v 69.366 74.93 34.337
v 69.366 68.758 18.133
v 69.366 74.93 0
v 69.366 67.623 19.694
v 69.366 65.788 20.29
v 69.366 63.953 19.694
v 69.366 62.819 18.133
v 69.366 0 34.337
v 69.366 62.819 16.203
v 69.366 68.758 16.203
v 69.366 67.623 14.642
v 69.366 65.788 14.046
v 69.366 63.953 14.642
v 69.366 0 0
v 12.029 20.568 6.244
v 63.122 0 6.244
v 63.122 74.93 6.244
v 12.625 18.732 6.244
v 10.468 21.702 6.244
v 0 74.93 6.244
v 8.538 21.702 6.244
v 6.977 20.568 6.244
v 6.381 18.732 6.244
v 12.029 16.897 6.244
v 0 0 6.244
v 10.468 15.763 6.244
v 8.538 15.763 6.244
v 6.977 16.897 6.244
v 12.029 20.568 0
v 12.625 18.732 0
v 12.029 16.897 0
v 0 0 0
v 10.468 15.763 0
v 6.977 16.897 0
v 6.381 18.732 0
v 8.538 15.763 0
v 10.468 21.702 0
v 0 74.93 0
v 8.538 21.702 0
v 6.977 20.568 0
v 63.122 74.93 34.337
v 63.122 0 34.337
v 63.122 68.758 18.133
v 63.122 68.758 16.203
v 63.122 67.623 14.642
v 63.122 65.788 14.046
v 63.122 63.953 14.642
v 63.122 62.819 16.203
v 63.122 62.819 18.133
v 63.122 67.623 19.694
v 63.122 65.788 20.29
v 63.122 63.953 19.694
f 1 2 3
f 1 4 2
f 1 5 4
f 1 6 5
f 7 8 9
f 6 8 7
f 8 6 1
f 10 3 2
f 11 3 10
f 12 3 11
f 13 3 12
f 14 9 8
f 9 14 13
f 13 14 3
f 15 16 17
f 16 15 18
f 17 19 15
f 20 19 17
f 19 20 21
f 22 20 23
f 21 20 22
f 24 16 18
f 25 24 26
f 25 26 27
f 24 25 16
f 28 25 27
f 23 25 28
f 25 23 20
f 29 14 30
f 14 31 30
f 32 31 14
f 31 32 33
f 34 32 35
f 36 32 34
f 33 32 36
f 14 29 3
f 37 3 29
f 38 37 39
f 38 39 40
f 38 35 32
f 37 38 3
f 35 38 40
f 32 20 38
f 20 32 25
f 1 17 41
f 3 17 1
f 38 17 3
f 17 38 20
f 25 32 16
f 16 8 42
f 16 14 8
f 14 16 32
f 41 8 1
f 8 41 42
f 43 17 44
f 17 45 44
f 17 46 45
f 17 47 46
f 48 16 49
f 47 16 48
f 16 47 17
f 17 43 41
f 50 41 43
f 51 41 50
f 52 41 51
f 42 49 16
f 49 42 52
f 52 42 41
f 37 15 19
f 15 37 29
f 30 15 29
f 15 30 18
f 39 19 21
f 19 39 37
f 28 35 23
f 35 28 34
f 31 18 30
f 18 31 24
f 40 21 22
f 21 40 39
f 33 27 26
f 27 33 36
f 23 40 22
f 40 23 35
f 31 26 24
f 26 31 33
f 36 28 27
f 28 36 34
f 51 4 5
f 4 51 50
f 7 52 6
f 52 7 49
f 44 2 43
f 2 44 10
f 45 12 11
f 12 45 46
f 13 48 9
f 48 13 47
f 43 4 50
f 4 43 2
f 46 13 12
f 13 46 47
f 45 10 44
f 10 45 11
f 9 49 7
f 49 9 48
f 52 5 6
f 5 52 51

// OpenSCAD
/* doodle-meta {"version":1,"parameters":{"width":{"label":"Overall width","description":"Changes the overall width of the bracket along the X-axis","unit":"mm","feature":"body_width"},"depth":{"label":"Overall depth","description":"Changes the overall depth of the bracket along the Y-axis","unit":"mm","feature":"body_depth"},"height":{"label":"Overall height","description":"Changes the overall height of the bracket along the Z-axis","unit":"mm","feature":"body_height"},"base_thickness":{"label":"Base thickness","description":"Changes the thickness of the horizontal base plate","unit":"mm","feature":"base_thickness"},"wall_thickness":{"label":"Wall thickness","description":"Changes the thickness of the vertical back wall","unit":"mm","feature":"wall_thickness"},"rib_thickness":{"label":"Rib thickness","description":"Changes the thickness of the angled support rib","unit":"mm","feature":"rib_thickness"},"hole_diameter":{"label":"Hole diameter","description":"Changes the diameter of the mounting holes","unit":"mm","feature":"holes"}},"features":{"body_width":{"kind":"dimension","axis":"x","label":"Overall width"},"body_depth":{"kind":"dimension","axis":"y","label":"Overall depth"},"body_height":{"kind":"dimension","axis":"z","label":"Overall height"},"base_thickness":{"kind":"region","label":"Base plate","min":[0,0,0],"max":[{"parameter":"width"},{"parameter":"depth"},{"parameter":"base_thickness"}]},"wall_thickness":{"kind":"region","label":"Vertical wall","min":[{"parameter":"width","scale":0.8,"offset":0},0,0],"max":[{"parameter":"width"},{"parameter":"depth"},{"parameter":"height"}]},"rib_thickness":{"kind":"region","label":"Support rib","min":[{"parameter":"width","scale":0.5},{"parameter":"depth","scale":0.4},{"parameter":"base_thickness"}],"max":[{"parameter":"width","scale":0.8},{"parameter":"depth","scale":0.6},{"parameter":"height","scale":0.8}]},"holes":{"kind":"region","label":"Mounting holes","min":[{"parameter":"width","scale":0.1},{"parameter":"depth","scale":0.1},0],"max":[{"parameter":"width","scale":0.9},{"parameter":"depth","scale":0.9},{"parameter":"height"}]}}} */

// Overall dimensions
width = 69.36621916952856;
depth = 74.92975335622853;
height = 34.336559475491725;

// Component thicknesses
base_thickness = 6.2441461130190445;
wall_thickness = 6.2441461130190445;
rib_thickness = 6.2441461130190445;

// Hole parameters
hole_diameter = 6.2441461130190445;

// Derived positions
wall_x_start = width - wall_thickness;
rib_x_start = wall_x_start - rib_thickness;
rib_top_z = height - base_thickness;

// Hole positions (derived from view measurements)
// Top view mapping: X = u * width, Y = (1-v) * depth
// Hole 1 (Base): u=0.137, v=0.75 -> X=9.5, Y=18.7
// Hole 2 (Wall): u=0.849, v=0.122 -> X=58.9, Y=65.8
hole1_x = 0.137 * width;
hole1_y = (1 - 0.75) * depth;
hole2_x = 0.849 * width;
hole2_y = (1 - 0.122) * depth;
hole2_z = height / 2; // Centered vertically in the wall

// Epsilon for clean cuts
eps = 0.01;

module base_plate() {
    cube([width, depth, base_thickness]);
}

module vertical_wall() {
    translate([wall_x_start, 0, 0])
        cube([wall_thickness, depth, height]);
}

module support_rib() {
    // Triangular rib connecting wall to base
    // Vertices in XZ plane (extruded along Y)
    // (rib_x_start, base_thickness) -> (wall_x_start, base_thickness) -> (wall_x_start, rib_top_z)
    polygon([
        [rib_x_start, base_thickness],
        [wall_x_start, base_thickness],
        [wall_x_start, rib_top_z]
    ]);
}

module rib_extrusion() {
    linear_extrude(height = rib_thickness)
        support_rib();
}

module hole_base() {
    // Hole through base plate (axis along Z)
    translate([hole1_x, hole1_y, -eps])
        cylinder(h = base_thickness + 2*eps, d = hole_diameter, center = false);
}

module hole_wall() {
    // Hole through vertical wall (axis along X)
    // Wall is at x = wall_x_start .. width
    // Cylinder axis along X, centered at hole2_y, hole2_z
    translate([wall_x_start - eps, hole2_y, hole2_z])
        rotate([0, 90, 0])
            cylinder(h = wall_thickness + 2*eps, d = hole_diameter, center = false);
}

// Main assembly
difference() {
    union() {
        base_plate();
        vertical_wall();
        // Rib is centered in Y
        translate([0, (depth - rib_thickness)/2, 0])
            rib_extrusion();
    }
    hole_base();
    hole_wall();
}
